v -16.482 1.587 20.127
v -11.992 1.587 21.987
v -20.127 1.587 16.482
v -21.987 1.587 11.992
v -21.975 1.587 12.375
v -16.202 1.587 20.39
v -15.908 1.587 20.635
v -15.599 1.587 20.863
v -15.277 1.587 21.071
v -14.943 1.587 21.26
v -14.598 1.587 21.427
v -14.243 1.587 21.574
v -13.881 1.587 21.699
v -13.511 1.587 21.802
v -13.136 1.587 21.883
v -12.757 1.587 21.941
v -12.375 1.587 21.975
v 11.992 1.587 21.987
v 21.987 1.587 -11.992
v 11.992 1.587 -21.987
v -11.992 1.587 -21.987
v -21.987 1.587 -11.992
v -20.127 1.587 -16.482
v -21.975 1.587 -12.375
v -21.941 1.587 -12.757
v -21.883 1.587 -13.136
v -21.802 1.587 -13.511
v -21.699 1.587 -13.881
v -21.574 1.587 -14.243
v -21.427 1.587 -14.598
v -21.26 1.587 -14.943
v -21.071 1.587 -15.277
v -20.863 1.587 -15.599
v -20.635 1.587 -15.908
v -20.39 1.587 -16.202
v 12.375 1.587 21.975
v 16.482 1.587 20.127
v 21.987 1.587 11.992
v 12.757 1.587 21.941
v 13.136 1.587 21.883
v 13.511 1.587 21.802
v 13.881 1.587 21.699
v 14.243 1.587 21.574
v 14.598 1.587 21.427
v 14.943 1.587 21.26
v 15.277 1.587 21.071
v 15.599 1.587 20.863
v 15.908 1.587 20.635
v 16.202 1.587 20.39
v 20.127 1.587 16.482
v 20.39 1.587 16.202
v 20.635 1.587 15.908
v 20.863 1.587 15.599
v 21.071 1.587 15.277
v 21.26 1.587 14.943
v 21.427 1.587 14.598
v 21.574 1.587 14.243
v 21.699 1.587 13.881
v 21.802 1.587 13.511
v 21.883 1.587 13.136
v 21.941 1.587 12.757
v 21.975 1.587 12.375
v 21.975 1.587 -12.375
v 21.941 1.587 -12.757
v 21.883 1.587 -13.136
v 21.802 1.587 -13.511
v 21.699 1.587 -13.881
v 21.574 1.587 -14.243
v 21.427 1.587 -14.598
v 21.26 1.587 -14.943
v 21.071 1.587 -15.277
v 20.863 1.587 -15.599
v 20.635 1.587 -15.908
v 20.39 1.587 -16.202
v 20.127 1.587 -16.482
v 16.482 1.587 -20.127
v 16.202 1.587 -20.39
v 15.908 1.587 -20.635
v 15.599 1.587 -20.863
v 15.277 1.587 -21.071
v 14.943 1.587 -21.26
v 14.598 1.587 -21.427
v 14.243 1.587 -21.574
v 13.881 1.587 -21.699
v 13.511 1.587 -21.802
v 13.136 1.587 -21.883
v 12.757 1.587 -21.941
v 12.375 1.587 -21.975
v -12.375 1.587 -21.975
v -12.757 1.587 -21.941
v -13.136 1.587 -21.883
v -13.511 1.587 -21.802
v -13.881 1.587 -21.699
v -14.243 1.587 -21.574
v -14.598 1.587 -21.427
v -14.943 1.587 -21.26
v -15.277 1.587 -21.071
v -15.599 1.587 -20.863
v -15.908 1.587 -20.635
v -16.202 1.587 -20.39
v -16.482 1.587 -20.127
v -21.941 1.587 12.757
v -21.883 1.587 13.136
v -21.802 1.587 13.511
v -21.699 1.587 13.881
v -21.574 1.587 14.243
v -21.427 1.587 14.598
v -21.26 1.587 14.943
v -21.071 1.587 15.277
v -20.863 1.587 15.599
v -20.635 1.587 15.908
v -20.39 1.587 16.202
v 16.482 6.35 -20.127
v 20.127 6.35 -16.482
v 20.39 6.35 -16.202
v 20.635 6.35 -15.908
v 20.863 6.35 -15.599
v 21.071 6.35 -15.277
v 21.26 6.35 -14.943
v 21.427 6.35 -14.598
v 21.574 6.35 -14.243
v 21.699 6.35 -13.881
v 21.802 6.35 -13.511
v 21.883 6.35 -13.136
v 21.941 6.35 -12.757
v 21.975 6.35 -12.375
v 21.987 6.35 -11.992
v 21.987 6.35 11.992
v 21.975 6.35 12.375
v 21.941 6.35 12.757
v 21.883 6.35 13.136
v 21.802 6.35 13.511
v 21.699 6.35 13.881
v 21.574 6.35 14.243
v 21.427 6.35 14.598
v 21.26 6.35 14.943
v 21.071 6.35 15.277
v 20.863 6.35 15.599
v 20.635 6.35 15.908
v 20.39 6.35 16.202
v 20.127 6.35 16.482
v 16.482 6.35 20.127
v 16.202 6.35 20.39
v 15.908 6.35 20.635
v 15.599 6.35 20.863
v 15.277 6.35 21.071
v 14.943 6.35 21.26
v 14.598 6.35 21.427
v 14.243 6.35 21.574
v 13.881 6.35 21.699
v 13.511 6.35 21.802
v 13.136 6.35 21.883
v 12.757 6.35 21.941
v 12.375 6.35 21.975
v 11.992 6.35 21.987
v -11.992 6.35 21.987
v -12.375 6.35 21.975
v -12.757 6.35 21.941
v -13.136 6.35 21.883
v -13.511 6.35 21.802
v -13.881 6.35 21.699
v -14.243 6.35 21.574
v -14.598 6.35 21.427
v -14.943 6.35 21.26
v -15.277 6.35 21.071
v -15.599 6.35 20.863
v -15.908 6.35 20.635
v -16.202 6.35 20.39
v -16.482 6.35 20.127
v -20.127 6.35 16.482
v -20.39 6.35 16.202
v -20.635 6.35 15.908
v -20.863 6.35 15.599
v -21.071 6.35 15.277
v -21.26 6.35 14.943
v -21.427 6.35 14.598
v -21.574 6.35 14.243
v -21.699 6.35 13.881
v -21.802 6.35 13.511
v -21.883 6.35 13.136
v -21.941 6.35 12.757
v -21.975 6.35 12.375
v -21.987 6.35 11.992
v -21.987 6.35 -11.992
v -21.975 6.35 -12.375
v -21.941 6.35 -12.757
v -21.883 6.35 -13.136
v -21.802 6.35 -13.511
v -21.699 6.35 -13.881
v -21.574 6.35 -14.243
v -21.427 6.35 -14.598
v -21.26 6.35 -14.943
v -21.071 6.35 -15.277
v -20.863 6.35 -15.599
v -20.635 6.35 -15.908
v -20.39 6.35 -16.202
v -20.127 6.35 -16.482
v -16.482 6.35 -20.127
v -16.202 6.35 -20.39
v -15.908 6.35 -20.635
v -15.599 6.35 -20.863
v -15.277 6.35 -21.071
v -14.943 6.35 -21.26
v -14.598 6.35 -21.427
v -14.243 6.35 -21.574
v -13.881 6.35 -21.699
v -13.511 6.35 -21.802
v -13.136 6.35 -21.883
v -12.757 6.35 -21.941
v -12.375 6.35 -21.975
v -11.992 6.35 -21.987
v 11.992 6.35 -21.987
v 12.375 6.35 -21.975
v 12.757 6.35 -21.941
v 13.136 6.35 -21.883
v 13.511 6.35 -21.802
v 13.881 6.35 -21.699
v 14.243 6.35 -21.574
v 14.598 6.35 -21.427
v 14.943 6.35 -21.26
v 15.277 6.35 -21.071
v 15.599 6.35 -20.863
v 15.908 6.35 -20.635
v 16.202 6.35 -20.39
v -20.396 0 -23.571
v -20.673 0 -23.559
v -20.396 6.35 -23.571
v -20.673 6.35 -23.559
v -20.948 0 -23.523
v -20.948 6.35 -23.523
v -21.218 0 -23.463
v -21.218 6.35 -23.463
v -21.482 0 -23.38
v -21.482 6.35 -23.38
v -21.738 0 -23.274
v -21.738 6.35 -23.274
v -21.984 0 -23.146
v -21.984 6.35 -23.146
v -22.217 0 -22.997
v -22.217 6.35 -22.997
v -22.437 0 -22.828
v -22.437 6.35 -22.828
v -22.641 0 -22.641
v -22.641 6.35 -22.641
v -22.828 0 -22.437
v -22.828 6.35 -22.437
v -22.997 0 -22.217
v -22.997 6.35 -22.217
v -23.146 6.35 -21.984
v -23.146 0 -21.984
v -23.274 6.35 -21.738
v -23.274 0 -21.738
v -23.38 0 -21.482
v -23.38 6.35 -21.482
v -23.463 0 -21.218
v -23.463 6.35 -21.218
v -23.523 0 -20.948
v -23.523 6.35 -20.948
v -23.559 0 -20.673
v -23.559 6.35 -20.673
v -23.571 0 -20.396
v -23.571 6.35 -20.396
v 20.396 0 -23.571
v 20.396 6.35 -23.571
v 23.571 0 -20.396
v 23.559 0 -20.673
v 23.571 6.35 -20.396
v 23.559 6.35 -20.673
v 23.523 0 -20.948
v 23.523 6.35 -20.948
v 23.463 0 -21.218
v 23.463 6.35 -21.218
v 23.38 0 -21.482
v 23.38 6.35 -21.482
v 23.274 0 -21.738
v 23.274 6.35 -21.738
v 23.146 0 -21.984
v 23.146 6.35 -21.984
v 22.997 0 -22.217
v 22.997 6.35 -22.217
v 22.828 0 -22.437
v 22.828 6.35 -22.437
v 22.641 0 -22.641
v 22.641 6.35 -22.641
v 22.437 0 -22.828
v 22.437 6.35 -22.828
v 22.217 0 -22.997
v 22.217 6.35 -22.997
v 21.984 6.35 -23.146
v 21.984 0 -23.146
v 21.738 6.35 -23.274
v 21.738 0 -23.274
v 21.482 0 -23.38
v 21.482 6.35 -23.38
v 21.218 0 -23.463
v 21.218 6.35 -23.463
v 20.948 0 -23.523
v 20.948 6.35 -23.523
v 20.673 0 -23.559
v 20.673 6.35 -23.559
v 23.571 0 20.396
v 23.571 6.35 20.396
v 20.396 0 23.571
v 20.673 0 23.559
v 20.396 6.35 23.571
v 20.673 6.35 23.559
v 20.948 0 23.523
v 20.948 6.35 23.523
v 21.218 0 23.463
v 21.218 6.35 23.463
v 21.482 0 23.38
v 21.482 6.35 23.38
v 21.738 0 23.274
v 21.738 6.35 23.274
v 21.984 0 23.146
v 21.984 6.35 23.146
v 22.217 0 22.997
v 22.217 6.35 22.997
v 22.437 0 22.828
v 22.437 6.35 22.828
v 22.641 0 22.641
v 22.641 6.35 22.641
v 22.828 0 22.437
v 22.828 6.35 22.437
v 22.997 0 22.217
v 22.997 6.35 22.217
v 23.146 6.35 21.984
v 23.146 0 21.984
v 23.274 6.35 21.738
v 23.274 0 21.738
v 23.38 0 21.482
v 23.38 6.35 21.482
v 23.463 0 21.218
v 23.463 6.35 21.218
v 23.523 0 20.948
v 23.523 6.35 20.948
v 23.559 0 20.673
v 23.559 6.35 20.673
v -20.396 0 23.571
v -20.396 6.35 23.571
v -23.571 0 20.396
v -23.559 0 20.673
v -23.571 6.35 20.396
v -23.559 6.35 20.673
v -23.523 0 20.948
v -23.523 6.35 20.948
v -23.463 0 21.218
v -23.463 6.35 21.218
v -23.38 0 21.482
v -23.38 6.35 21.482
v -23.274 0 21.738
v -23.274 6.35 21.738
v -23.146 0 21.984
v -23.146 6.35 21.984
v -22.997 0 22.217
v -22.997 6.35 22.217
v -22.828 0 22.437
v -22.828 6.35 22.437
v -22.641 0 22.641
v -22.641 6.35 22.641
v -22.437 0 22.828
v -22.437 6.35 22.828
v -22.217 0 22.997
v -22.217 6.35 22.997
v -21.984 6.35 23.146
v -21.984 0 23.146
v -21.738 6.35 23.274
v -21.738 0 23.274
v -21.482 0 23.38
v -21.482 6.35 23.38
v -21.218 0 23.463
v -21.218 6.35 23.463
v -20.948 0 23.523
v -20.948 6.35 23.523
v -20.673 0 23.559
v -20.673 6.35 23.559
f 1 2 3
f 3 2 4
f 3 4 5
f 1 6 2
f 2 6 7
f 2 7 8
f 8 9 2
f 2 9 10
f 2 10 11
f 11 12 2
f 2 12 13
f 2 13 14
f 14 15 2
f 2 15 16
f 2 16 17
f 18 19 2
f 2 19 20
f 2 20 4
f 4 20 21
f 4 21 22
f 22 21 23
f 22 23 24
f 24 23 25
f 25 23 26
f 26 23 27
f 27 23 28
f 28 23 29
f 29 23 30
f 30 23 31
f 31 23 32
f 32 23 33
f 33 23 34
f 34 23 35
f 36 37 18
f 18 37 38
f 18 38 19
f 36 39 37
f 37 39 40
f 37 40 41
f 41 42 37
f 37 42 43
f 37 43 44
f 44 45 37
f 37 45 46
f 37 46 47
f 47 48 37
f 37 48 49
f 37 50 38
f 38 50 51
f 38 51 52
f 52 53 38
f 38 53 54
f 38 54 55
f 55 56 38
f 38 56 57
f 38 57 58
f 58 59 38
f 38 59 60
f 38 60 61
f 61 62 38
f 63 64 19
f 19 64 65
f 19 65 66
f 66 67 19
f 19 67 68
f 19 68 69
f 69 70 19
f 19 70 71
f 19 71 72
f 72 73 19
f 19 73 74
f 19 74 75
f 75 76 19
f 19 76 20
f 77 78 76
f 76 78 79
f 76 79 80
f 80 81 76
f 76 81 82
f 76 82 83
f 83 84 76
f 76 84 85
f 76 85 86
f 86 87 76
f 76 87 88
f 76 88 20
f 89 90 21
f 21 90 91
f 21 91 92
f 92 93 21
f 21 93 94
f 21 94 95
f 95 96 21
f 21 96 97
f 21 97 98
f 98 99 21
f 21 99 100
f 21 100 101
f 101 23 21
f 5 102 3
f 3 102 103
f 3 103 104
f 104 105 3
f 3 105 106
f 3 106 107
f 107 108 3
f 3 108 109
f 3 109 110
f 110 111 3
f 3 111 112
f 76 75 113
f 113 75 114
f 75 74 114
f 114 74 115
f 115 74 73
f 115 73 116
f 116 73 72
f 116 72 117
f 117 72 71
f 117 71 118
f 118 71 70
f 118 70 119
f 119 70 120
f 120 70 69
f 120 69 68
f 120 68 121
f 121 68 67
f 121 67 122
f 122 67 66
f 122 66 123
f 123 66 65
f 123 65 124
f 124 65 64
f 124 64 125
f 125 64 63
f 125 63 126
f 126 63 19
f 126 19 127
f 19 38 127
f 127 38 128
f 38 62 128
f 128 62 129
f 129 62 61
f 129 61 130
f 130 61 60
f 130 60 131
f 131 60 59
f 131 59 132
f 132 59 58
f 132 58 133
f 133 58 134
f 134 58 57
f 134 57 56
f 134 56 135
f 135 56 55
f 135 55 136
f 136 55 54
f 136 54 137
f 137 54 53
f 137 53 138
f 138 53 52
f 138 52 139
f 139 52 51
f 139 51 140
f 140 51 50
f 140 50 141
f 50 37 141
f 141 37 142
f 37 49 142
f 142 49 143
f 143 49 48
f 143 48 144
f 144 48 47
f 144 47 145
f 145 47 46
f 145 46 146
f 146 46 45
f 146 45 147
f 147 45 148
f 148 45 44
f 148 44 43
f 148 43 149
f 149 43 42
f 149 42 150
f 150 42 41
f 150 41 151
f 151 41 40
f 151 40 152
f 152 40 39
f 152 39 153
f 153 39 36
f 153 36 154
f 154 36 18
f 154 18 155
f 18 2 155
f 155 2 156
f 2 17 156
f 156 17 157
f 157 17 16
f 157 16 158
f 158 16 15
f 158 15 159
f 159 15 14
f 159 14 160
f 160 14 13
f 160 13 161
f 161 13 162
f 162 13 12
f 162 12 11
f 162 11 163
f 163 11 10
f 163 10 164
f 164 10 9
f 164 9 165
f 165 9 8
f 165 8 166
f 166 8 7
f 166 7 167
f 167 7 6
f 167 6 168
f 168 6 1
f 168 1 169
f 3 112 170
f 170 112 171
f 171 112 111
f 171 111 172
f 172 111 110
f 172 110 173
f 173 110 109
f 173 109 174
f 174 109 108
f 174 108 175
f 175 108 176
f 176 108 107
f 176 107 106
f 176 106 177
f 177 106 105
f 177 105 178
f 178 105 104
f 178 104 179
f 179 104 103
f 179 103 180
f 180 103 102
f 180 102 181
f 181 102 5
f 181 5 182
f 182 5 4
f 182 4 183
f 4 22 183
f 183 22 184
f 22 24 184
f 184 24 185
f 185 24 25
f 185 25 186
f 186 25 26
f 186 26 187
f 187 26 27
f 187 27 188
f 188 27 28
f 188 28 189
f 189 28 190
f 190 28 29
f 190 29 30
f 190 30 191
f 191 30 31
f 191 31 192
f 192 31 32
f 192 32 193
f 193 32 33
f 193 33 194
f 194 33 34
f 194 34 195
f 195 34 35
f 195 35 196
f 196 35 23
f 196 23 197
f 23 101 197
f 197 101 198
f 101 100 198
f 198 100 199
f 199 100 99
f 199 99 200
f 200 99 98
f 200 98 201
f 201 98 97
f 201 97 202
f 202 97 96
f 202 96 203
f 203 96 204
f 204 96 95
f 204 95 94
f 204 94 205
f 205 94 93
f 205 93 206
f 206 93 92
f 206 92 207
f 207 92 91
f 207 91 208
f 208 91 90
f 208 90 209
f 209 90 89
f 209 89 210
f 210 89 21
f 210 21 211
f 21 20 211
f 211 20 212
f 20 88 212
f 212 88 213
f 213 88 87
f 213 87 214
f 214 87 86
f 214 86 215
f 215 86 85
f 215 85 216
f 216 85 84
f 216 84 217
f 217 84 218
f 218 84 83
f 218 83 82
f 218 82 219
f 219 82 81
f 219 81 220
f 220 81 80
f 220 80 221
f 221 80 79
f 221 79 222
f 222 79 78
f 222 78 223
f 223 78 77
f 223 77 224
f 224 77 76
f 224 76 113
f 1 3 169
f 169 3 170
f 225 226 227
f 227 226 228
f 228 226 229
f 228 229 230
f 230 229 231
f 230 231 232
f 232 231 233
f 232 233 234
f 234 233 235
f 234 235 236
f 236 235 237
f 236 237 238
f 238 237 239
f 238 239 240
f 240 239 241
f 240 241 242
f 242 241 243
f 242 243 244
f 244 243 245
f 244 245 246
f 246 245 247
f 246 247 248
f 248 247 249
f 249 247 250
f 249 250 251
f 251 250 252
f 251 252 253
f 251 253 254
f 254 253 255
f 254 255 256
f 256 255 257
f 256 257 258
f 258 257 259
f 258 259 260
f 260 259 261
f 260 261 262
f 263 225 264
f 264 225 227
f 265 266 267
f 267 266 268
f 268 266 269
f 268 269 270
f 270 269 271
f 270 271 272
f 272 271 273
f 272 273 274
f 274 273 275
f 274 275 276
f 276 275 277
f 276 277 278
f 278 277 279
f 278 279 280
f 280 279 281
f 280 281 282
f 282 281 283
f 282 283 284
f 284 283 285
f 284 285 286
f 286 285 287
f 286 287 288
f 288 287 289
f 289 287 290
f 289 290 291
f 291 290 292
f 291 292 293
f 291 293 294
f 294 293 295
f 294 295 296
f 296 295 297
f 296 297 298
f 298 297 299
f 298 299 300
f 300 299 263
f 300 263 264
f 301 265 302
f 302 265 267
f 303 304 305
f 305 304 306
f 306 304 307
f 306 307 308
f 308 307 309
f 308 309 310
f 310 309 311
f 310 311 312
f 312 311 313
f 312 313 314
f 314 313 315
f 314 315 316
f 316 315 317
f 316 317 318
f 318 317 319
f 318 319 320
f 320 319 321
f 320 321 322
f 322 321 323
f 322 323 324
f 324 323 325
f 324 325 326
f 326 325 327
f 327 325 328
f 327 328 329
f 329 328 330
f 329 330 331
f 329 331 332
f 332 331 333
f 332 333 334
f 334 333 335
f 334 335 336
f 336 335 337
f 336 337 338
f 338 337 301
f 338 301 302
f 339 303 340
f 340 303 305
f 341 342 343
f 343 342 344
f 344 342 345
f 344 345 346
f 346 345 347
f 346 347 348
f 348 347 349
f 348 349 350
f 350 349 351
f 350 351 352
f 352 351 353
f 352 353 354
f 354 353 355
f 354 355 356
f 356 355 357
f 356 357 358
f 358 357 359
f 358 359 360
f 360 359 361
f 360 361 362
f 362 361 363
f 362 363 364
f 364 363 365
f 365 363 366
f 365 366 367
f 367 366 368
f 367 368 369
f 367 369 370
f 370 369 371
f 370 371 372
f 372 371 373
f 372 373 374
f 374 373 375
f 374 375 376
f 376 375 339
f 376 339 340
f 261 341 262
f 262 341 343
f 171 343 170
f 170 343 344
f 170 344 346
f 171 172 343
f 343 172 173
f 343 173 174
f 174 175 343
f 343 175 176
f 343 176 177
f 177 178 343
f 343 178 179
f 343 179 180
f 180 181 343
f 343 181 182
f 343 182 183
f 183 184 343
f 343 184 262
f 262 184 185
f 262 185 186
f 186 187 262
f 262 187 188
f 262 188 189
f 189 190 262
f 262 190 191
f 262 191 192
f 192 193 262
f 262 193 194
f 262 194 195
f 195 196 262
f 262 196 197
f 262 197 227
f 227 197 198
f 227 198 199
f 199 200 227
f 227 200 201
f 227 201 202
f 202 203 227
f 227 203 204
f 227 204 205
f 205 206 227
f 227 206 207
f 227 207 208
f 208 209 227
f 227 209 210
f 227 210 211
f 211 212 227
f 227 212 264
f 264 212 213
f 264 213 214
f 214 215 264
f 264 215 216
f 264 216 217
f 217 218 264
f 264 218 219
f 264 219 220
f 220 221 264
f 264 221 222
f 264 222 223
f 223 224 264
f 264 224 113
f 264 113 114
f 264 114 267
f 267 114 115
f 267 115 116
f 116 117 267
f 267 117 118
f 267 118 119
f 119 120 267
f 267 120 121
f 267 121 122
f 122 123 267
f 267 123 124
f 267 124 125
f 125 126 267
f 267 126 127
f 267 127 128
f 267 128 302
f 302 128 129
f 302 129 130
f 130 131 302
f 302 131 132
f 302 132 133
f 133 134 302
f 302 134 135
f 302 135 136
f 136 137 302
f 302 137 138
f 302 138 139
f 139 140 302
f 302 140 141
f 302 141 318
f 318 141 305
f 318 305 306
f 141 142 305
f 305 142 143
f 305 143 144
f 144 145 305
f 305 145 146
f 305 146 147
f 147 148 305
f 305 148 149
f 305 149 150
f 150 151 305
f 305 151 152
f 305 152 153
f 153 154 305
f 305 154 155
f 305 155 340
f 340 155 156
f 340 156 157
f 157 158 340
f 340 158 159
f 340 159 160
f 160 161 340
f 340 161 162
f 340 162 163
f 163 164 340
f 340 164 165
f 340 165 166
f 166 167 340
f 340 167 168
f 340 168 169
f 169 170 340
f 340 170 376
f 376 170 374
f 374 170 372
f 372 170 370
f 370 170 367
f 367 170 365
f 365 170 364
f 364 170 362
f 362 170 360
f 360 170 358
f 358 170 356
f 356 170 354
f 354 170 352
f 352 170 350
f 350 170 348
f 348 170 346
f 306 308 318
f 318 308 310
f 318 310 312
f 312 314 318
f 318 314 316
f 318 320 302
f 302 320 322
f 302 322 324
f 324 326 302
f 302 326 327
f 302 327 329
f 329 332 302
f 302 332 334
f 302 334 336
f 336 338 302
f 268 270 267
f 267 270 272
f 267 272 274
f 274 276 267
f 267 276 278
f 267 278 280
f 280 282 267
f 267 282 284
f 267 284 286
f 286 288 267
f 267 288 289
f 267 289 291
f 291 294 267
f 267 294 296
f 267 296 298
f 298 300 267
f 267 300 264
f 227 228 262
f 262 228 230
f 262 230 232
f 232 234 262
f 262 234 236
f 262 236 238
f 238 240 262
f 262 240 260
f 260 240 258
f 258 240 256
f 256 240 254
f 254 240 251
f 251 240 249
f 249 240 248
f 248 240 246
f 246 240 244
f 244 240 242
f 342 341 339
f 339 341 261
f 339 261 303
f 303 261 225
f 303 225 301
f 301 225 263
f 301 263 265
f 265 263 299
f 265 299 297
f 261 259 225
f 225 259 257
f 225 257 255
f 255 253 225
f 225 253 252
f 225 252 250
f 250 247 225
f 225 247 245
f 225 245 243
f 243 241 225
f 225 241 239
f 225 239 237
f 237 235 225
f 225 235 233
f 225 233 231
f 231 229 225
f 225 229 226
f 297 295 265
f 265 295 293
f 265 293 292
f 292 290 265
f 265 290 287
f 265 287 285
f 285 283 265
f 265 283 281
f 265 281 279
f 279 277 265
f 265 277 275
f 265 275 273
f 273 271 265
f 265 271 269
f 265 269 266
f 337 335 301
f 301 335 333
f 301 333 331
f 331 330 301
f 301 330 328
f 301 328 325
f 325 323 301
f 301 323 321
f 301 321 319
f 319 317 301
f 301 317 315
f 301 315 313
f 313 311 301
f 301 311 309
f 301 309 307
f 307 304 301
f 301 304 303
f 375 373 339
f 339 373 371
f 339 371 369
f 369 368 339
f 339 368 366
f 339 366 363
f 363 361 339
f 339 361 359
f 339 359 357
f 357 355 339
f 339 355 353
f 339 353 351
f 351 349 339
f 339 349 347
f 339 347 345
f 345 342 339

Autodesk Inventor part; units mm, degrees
ref_plane "YZ Plane" through (0, 0, 0) normal (1, 0, 0) x (0, 1, 0)
ref_plane "XZ Plane" through (0, 0, 0) normal (0, 1, 0) x (-1, 0, 0)
ref_plane "XY Plane" through (0, 0, 0) normal (0, 0, 1) x (1, 0, 0)
sketch "Sketch1" plane through (0, 0, 0) normal (0, 1, 0) x (-1, 0, 0)
  circle A0 centre (0, 0) radius 18.3769
  line L0 (18.3769, 18.3769) -> (-18.3769, -18.3769) construction
  line L1 (-18.3769, 18.3769) -> (18.3769, -18.3769) construction
  line L2 (13.335, 21.59) -> (-13.335, 21.59)
  line L3 (-21.59, 13.335) -> (-21.59, -13.335)
  line L4 (-13.335, -21.59) -> (13.335, -21.59)
  line L5 (21.59, -13.335) -> (21.59, 13.335)
  line L6 (21.59, 21.59) -> (-21.59, -21.59) construction
  line L7 (-21.59, 21.59) -> (21.59, -21.59) construction
  line L8 (21.59, 13.335) -> (13.335, 21.59)
  line L9 (-13.335, 21.59) -> (-21.59, 13.335)
  line L10 (-21.59, -13.335) -> (-13.335, -21.59)
  line L11 (13.335, -21.59) -> (21.59, -13.335)
  circle A1 centre (15.24, -15.24) radius 1.0033
  circle A2 centre (-15.24, -15.24) radius 1.0033
  circle A3 centre (-15.24, 15.24) radius 1.0033
  circle A4 centre (15.24, 15.24) radius 1.0033
  line L12 (11.9917, -21.9869) -> (-11.9917, -21.9869)
  line L13 (-21.9869, -11.9917) -> (-21.9869, 11.9917)
  line L14 (-11.9917, 21.9869) -> (11.9917, 21.9869)
  line L15 (21.9869, 11.9917) -> (21.9869, -11.9917)
  line L16 (-20.3962, 23.5712) -> (20.3962, 23.5712)
  line L17 (23.5712, 20.3962) -> (23.5712, -20.3962)
  line L18 (20.3962, -23.5712) -> (-20.3962, -23.5712)
  line L19 (-23.5712, -20.3962) -> (-23.5712, 20.3962)
  line L20 (-23.5712, 23.5712) -> (23.5712, -23.5712) construction
  line L21 (23.5712, 23.5712) -> (-23.5712, -23.5712) construction
  arc A5 (20.3962, -23.5712) -> (23.5712, -20.3962) centre (20.3962, -20.3962) ccw
  arc A6 (-23.5712, -20.3962) -> (-20.3962, -23.5712) centre (-20.3962, -20.3962) ccw
  arc A7 (-20.3962, 23.5712) -> (-23.5712, 20.3962) centre (-20.3962, 20.3962) ccw
  arc A8 (23.5712, 20.3962) -> (20.3962, 23.5712) centre (20.3962, 20.3962) ccw
  circle A9 centre (20.3962, -20.3962) radius 1.0033
  circle A10 centre (-20.3962, -20.3962) radius 1.0033
  circle A11 centre (-20.3962, 20.3962) radius 1.0033
  circle A12 centre (20.3962, 20.3962) radius 1.0033
  line L22 (16.4818, -20.127) -> (20.127, -16.4818)
  line L23 (20.127, 16.4818) -> (16.4818, 20.127)
  line L24 (-16.4818, 20.127) -> (-20.127, 16.4818)
  line L25 (-20.127, -16.4818) -> (-16.4818, -20.127)
  arc A13 (21.9869, 11.9917) -> (20.127, 16.4818) centre (15.6369, 11.9917) ccw
  arc A14 (16.4818, 20.127) -> (11.9917, 21.9869) centre (11.9917, 15.6369) ccw
  arc A15 (-11.9917, 21.9869) -> (-16.4818, 20.127) centre (-11.9917, 15.6369) ccw
  arc A16 (-20.127, 16.4818) -> (-21.9869, 11.9917) centre (-15.6369, 11.9917) ccw
  arc A17 (-21.9869, -11.9917) -> (-20.127, -16.4818) centre (-15.6369, -11.9917) ccw
  arc A18 (-16.4818, -20.127) -> (-11.9917, -21.9869) centre (-11.9917, -15.6369) ccw
  arc A19 (11.9917, -21.9869) -> (16.4818, -20.127) centre (11.9917, -15.6369) ccw
  arc A20 (20.127, -16.4818) -> (21.9869, -11.9917) centre (15.6369, -11.9917) ccw
  line L26 (4.3815, -5.969) -> (4.3815, -12.5476)
  line L27 (2.794, -14.1351) -> (-2.794, -14.1351)
  line L28 (-4.3815, -12.5476) -> (-4.3815, -5.969)
  line L29 (4.3815, 5.969) -> (4.3815, 12.5476)
  line L30 (2.794, 14.1351) -> (-2.794, 14.1351)
  line L31 (-4.3815, 12.5476) -> (-4.3815, 5.969)
  line L32 (-5.969, -4.3815) -> (-12.5476, -4.3815)
  line L33 (-14.1351, -2.794) -> (-14.1351, 2.794)
  line L34 (-12.5476, 4.3815) -> (-5.969, 4.3815)
  line L35 (5.969, -4.3815) -> (12.5476, -4.3815)
  line L36 (14.1351, -2.794) -> (14.1351, 2.794)
  line L37 (12.5476, 4.3815) -> (5.969, 4.3815)
  arc A21 (2.794, -14.1351) -> (4.3815, -12.5476) centre (2.794, -12.5476) ccw
  arc A22 (-4.3815, -12.5476) -> (-2.794, -14.1351) centre (-2.794, -12.5476) ccw
  arc A23 (-4.3815, -5.969) -> (-5.969, -4.3815) centre (-5.969, -5.969) ccw
  arc A24 (-14.1351, -2.794) -> (-12.5476, -4.3815) centre (-12.5476, -2.794) ccw
  arc A25 (-14.1351, -2.794) -> (-12.5476, -4.3815) centre (-12.5476, -2.794) ccw
  arc A26 (-12.5476, 4.3815) -> (-14.1351, 2.794) centre (-12.5476, 2.794) ccw
  arc A27 (-5.969, 4.3815) -> (-4.3815, 5.969) centre (-5.969, 5.969) ccw
  arc A28 (-2.794, 14.1351) -> (-4.3815, 12.5476) centre (-2.794, 12.5476) ccw
  arc A29 (4.3815, 12.5476) -> (2.794, 14.1351) centre (2.794, 12.5476) ccw
  arc A30 (4.3815, 5.969) -> (5.969, 4.3815) centre (5.969, 5.969) ccw
  arc A31 (14.1351, 2.794) -> (12.5476, 4.3815) centre (12.5476, 2.794) ccw
  arc A32 (12.5476, -4.3815) -> (14.1351, -2.794) centre (12.5476, -2.794) ccw
  arc A33 (5.969, -4.3815) -> (4.3815, -5.969) centre (5.969, -5.969) ccw
  line L38 (-2.794, -14.9289) -> (2.794, -14.9289)
  arc A34 (2.794, -14.9289) -> (5.1753, -12.5476) centre (2.794, -12.5476) ccw
  line L39 (5.1753, -12.5476) -> (5.1753, -5.969)
  arc A35 (5.969, -5.1753) -> (5.1753, -5.969) centre (5.969, -5.969) ccw
  line L40 (5.969, -5.1753) -> (12.5476, -5.1753)
  arc A36 (12.5476, -5.1753) -> (14.9289, -2.794) centre (12.5476, -2.794) ccw
  line L41 (14.9289, -2.794) -> (14.9289, 2.794)
  arc A37 (14.9289, 2.794) -> (12.5476, 5.1753) centre (12.5476, 2.794) ccw
  line L42 (12.5476, 5.1753) -> (5.969, 5.1753)
  arc A38 (5.1753, 5.969) -> (5.969, 5.1753) centre (5.969, 5.969) ccw
  line L43 (5.1753, 5.969) -> (5.1753, 12.5476)
  arc A39 (5.1753, 12.5476) -> (2.794, 14.9289) centre (2.794, 12.5476) ccw
  line L44 (2.794, 14.9289) -> (-2.794, 14.9289)
  arc A40 (-2.794, 14.9289) -> (-5.1753, 12.5476) centre (-2.794, 12.5476) ccw
  line L45 (-5.1753, 12.5476) -> (-5.1753, 5.969)
  arc A41 (-5.969, 5.1753) -> (-5.1753, 5.969) centre (-5.969, 5.969) ccw
  line L46 (-5.969, 5.1753) -> (-12.5476, 5.1753)
  arc A42 (-12.5476, 5.1753) -> (-14.9289, 2.794) centre (-12.5476, 2.794) ccw
  line L47 (-14.9289, 2.794) -> (-14.9289, -2.794)
  arc A43 (-14.9289, -2.794) -> (-12.5476, -5.1753) centre (-12.5476, -2.794) ccw
  line L48 (-12.5476, -5.1753) -> (-5.969, -5.1753)
  arc A44 (-5.1753, -5.969) -> (-5.969, -5.1753) centre (-5.969, -5.969) ccw
  line L49 (-5.1753, -5.969) -> (-5.1753, -12.5476)
  arc A45 (-5.1753, -12.5476) -> (-2.794, -14.9289) centre (-2.794, -12.5476) ccw
  point P0 (4.3815, -14.1351)
  point P1 (-4.3815, -14.1351)
  point P2 (4.3815, 14.1351)
  point P3 (-14.1351, 4.3815)
  point P4 (-4.3815, 4.3815)
  point P5 (14.1351, 4.3815)
  point P6 (4.3815, 4.3815)
  dimension "d33" = 36.7538
  dimension "d34" = 43.18
  dimension "d35" = 43.18
  dimension "d48" = 2.0066
  dimension "d49" = 2.0066
  dimension "d50" = 2.0066
  dimension "d51" = 2.0066
  dimension "d52" = 0.3969
  dimension "d53" = 47.1424
  dimension "d54" = 47.1424
  dimension "d55" = 3.175
  dimension "d56" = 2.0066
  dimension "d57" = 2.0066
  dimension "d58" = 2.0066
  dimension "d59" = 2.0066
  dimension "d62" = 6.35
  dimension "d79" = 8.763
  dimension "d84" = 1.5875
  dimension "d85" = 0.7937
  dimension "d86" = 9.7536
extrude "Extrusion9" add sketch "Sketch1" along normal blind 6.35 contours L16 A8 L17 A5 L18 A6 L19 A7 | A9 | A10 | A11 | A12
extrude "Extrusion10" add sketch "Sketch1" along normal blind 1.5875 contours A0 | L8 L5 L11 L4 L10 L3 L9 L2 | A1 | A2 | A3 | A4 | L12 A18 L25 A17 L13 A16 L24 A15 L14 A14 L23 A13 L15 A20 L22 A19 | L26 A21 L27 A22 L28 A23 L32 A24 L33 A26 L34 A27 L31 A28 L30 A29 L29 A30 L37 A31 L36 A32 L35 A33 | A45 L49 A44 L48 A43 L47 A42 L46 A41 L45 A40 L44 A39 L43 A38 L42 A37 L41 A36 L40 A35 L39 A34 L38
properties part number "SnakeControllerCase_v3"
